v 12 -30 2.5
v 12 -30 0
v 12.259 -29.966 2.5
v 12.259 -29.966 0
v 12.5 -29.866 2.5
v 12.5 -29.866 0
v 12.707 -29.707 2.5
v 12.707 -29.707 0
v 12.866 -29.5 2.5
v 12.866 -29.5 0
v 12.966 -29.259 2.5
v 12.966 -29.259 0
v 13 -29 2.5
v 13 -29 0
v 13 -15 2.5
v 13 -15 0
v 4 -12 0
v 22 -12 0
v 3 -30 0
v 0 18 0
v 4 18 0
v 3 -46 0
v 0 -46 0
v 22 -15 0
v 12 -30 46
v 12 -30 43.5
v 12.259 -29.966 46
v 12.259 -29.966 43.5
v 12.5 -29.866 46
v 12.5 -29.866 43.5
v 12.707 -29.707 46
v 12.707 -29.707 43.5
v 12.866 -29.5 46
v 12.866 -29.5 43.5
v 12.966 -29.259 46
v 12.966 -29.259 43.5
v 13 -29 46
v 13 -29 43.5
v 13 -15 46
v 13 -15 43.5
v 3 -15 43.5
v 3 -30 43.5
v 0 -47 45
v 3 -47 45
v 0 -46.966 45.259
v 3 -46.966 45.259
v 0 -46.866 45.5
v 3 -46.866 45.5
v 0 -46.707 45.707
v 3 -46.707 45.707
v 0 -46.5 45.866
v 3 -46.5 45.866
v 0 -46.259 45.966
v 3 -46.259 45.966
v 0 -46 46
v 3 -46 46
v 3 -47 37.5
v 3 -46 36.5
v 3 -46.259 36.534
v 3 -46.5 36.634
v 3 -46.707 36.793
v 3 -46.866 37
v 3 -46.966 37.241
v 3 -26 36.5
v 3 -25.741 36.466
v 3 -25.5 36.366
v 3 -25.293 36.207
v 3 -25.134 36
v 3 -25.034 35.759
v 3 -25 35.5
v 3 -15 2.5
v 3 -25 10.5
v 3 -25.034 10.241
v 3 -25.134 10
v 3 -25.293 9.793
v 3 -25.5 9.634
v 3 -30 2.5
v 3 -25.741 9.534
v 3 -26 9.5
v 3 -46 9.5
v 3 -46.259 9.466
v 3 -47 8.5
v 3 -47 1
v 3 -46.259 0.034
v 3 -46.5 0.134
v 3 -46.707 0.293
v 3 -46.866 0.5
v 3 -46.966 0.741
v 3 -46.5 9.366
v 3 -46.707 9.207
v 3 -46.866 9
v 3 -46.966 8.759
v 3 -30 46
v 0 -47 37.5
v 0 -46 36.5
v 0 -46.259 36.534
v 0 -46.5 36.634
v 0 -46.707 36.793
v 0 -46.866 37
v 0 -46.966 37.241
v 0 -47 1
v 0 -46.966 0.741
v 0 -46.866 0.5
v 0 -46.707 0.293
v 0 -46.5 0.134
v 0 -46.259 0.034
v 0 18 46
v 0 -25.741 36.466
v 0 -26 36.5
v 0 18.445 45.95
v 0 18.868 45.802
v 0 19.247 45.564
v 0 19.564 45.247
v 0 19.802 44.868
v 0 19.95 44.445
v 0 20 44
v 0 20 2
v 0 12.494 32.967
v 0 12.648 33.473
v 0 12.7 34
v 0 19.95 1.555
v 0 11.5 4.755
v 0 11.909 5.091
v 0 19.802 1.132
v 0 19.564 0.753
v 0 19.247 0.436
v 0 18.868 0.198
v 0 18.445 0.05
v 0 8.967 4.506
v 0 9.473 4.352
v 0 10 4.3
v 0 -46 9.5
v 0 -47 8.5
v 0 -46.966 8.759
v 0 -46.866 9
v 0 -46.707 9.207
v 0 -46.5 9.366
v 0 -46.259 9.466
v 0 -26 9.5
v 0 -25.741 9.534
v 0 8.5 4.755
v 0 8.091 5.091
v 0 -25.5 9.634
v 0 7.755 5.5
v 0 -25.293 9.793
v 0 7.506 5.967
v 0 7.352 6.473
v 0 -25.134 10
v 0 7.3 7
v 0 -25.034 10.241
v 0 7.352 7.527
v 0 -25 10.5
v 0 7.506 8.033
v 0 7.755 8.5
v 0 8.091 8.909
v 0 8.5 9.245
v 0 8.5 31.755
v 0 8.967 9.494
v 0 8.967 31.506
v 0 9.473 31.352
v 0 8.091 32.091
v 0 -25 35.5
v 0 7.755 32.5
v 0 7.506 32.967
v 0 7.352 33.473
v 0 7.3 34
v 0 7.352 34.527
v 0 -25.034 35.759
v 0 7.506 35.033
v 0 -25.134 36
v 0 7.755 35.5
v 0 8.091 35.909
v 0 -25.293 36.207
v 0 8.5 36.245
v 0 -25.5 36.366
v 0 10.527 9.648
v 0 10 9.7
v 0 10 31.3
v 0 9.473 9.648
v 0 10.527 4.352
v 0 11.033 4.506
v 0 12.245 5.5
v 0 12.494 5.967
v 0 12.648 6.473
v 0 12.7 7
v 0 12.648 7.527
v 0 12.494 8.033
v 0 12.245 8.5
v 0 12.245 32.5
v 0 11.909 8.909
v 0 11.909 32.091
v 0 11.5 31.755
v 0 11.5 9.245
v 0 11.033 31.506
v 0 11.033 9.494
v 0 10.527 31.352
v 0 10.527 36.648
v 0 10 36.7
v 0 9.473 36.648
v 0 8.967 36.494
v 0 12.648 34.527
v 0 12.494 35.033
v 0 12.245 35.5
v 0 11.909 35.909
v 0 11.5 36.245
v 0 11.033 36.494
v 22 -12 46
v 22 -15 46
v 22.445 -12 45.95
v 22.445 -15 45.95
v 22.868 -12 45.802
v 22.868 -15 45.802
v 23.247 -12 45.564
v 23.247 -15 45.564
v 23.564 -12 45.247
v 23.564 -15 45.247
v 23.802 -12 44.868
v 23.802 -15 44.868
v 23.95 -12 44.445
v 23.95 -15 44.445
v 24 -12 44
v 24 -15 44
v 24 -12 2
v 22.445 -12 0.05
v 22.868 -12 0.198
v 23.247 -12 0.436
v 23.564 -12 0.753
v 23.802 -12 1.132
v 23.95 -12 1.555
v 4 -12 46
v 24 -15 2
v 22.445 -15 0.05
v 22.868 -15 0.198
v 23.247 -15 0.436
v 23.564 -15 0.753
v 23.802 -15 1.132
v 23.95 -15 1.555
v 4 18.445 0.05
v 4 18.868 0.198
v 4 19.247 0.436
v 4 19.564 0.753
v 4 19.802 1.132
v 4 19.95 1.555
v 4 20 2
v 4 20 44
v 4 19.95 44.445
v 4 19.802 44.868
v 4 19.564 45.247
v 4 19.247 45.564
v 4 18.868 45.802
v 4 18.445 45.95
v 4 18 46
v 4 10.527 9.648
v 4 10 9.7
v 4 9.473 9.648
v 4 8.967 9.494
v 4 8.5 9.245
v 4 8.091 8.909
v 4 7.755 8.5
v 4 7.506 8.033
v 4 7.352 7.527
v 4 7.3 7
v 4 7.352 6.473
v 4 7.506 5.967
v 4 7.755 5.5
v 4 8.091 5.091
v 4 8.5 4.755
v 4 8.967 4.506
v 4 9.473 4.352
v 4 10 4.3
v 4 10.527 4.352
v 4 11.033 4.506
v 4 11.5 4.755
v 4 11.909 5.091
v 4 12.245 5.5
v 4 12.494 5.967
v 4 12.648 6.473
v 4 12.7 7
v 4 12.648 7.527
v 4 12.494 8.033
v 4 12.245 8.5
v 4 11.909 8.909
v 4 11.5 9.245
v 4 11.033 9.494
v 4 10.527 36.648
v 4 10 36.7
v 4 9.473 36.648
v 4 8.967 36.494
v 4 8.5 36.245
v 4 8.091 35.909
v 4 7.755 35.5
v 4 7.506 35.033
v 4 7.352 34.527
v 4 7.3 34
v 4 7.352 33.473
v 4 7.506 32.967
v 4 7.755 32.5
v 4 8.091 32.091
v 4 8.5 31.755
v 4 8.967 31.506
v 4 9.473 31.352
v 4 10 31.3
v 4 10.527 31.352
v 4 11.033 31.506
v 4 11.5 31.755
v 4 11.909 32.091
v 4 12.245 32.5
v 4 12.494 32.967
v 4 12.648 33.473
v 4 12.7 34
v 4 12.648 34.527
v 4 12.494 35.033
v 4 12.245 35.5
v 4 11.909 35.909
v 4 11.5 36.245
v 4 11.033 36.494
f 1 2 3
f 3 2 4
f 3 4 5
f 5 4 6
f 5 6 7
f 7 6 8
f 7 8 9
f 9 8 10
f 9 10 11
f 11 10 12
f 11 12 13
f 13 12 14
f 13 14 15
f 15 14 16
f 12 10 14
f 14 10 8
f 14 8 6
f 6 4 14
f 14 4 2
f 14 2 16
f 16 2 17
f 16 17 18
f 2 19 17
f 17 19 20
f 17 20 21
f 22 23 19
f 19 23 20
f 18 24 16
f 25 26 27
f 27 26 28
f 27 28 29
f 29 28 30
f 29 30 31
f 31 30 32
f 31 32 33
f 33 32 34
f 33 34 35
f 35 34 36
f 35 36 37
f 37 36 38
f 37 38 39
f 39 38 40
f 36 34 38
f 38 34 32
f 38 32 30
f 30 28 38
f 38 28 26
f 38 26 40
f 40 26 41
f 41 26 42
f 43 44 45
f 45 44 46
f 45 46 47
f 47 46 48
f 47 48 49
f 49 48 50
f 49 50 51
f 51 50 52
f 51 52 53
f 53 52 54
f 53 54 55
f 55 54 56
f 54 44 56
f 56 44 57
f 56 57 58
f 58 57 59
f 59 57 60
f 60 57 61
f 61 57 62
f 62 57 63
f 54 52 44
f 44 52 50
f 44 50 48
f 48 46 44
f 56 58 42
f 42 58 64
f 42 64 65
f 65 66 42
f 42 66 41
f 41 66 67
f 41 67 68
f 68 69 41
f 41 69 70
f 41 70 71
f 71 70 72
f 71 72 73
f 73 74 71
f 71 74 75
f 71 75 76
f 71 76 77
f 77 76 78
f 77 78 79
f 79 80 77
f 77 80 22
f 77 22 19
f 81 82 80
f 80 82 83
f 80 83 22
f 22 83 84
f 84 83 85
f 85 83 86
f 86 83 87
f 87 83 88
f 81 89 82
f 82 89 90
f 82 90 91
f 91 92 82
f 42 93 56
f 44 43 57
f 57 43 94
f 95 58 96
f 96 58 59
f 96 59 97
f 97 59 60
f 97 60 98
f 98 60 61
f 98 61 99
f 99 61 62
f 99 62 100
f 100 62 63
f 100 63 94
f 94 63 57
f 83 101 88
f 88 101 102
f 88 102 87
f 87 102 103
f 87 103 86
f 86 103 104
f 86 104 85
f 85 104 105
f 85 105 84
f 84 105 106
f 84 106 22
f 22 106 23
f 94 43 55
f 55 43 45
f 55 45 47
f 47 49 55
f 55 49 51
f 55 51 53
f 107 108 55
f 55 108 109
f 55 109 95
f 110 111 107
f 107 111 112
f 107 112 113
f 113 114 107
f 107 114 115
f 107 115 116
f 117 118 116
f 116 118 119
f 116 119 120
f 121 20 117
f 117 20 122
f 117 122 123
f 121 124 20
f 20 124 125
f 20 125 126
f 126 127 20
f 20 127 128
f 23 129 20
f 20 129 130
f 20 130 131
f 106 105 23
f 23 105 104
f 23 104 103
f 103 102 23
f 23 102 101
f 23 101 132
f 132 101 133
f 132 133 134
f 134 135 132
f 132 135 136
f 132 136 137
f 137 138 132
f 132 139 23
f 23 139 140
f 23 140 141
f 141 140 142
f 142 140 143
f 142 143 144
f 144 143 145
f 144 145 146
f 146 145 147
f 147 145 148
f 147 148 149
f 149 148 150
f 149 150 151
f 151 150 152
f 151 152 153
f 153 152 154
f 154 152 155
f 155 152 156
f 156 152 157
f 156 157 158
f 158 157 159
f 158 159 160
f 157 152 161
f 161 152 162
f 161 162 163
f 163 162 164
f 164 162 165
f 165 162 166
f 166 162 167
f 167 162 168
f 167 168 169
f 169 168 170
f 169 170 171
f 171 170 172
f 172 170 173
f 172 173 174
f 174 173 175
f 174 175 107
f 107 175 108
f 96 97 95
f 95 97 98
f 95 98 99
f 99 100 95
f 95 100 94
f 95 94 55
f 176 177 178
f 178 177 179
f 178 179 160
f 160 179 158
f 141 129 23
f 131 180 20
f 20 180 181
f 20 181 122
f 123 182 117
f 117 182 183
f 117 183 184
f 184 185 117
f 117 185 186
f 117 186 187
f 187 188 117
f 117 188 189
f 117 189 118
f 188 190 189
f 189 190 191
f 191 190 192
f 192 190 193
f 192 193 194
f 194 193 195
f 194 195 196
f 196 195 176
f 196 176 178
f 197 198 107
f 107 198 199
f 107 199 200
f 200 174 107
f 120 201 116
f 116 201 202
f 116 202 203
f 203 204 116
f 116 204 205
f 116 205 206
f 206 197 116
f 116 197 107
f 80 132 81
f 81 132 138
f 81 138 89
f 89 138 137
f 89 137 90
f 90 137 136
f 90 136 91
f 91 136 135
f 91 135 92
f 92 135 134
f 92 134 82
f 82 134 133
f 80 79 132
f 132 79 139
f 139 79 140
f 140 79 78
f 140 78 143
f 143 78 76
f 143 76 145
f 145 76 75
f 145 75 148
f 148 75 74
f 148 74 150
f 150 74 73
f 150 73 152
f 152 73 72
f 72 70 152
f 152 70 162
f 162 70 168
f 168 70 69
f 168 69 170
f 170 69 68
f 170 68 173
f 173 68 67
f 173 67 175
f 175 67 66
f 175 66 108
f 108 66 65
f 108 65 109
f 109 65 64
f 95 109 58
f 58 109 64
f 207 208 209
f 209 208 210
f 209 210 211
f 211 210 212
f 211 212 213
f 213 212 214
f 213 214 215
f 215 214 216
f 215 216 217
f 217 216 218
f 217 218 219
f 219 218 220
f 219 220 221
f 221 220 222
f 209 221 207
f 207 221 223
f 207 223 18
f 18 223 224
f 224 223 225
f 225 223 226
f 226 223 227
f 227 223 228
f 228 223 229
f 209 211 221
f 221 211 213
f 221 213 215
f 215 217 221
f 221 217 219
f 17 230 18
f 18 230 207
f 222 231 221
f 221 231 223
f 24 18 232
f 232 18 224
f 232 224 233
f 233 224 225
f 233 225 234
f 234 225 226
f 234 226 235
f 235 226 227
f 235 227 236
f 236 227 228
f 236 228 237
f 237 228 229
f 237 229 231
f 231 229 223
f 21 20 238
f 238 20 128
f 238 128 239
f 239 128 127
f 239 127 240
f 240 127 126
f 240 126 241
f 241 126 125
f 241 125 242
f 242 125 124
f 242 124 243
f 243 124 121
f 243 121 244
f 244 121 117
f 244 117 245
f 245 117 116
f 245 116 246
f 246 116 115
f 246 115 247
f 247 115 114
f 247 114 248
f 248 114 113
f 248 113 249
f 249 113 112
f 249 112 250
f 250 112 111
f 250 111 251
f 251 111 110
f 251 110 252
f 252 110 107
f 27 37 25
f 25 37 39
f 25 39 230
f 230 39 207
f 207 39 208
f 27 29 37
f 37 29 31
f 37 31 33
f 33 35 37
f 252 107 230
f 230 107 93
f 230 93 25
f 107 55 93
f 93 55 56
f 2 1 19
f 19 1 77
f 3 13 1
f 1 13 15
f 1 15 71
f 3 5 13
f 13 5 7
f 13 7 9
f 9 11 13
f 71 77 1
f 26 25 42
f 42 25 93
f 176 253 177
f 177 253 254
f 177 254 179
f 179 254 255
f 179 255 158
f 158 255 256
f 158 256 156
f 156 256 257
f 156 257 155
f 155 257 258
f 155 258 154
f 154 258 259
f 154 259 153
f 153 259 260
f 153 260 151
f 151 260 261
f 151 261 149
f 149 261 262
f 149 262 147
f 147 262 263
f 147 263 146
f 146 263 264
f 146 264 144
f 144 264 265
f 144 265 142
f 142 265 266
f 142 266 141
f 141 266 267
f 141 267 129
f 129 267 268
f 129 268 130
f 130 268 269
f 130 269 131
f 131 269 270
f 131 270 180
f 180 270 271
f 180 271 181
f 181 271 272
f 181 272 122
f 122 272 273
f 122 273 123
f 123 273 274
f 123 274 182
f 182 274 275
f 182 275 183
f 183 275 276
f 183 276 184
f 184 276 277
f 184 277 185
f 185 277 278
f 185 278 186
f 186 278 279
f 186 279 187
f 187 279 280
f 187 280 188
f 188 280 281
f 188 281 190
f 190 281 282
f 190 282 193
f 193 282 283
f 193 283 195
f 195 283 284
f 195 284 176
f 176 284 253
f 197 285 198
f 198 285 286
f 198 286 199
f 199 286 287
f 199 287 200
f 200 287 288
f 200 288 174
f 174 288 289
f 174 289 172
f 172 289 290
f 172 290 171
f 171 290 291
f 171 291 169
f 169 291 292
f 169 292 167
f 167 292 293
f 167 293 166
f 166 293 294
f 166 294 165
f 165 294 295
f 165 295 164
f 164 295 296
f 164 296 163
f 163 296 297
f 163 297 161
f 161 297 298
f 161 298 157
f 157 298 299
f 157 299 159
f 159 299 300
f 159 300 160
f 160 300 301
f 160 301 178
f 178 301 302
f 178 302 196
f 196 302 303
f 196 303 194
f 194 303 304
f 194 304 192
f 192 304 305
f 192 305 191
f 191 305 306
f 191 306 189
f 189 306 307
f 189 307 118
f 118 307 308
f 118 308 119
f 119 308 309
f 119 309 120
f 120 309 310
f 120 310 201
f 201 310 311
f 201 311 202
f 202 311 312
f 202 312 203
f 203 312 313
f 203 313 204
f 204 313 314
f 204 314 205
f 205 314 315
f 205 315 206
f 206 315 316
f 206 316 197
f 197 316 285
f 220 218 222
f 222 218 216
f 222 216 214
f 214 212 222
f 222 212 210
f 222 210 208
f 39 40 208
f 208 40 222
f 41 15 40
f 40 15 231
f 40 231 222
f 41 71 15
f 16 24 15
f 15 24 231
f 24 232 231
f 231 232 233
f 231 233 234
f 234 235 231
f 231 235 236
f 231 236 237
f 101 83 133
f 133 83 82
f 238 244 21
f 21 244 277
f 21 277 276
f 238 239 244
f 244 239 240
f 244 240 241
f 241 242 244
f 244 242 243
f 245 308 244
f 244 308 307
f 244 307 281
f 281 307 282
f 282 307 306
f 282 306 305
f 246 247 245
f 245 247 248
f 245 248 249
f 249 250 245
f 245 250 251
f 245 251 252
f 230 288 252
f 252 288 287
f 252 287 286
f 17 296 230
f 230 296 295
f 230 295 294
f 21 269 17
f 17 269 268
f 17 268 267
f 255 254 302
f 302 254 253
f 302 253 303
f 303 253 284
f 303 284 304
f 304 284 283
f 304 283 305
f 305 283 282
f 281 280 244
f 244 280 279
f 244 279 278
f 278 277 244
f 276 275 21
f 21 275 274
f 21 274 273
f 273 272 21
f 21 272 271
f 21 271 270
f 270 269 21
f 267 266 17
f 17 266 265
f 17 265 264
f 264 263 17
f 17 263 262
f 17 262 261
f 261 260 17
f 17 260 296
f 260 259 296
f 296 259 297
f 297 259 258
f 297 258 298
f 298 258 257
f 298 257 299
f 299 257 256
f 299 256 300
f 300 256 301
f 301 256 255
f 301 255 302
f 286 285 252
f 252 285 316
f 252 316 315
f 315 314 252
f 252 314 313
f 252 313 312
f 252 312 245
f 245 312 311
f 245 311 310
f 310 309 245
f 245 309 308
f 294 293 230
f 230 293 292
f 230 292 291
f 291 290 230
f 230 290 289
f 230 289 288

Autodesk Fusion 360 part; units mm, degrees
sketch "Sketch1" plane through (0, 0, 0) normal (0, 0, 1) x (1, 0, 0)
  line L0 (4, 0) -> (4, 20)
  line L1 (4, 20) -> (0, 20)
  line L2 (0, 20) -> (0, 0)
  line L3 (0, 0) -> (4, 0)
  line L4 (4, 0) -> (4, -15)
  line L5 (4, -15) -> (0, -15)
  line L6 (0, -15) -> (0, 0)
  line L7 (0, -15) -> (3, -15)
  line L8 (3, -15) -> (3, -47)
  line L9 (3, -47) -> (0, -47)
  line L10 (0, -47) -> (0, -15)
  dimension "d1" = 20
  dimension "d2" = 4
  dimension "d3" = 15
  dimension "d4" = 32
  dimension "d5" = 3
extrude "Extrude1" add sketch "Sketch1" along normal blind 46
sketch "Sketch2" plane through (4, 0, 0) normal (1, 0, 0) x (0, 0, -1)
  line L0 (0, -15) -> (0, 20)
  line L1 (0, 20) -> (-46, 20)
  line L2 (-46, 20) -> (-46, -15)
  line L3 (-46, -15) -> (0, -15)
  line L4 (-46, 10) -> (0, 10) construction
  circle A0 centre (-34, 10) radius 2.7
  circle A1 centre (-7, 10) radius 2.7
  line L5 (-46, -12) -> (0, -12)
  line L6 (0, -47) -> (0, -15) construction
  line L7 (0, -15) -> (-46, -15) construction
  line L8 (-46, -15) -> (-46, -47) construction
  line L9 (-46, -47) -> (0, -47) construction
  line L10 (-23, 20) -> (-23, -47) construction
  line L11 (-36.5, -25) -> (-9.5, -25)
  line L12 (-9.5, -25) -> (-9.5, -47)
  line L13 (-9.5, -47) -> (-36.5, -47)
  line L14 (-36.5, -47) -> (-36.5, -25)
  dimension "d8" = 5.4
  dimension "d9" = 5.4
  dimension "d10" = 3
  dimension "d11" = 27
  dimension "d12" = 22
  dimension "d17" = 7
  dimension "d18" = 12
  dimension "d19" = 11.5
  dimension "d24" = 25
  dimension "d25" = 15
extrude "Extrude3" add sketch "Sketch2" along normal blind 20 contours L0 L2 L3 L5
extrude "Extrude2" cut sketch "Sketch2" against normal through all contours A0 | A1 | L11 L12 L13 L14
sketch "Sketch3" plane through (3, 0, 0) normal (1, 0, 0) x (0, 0, -1)
  line L0 (-9.5, -25) -> (-9.5, -47)
  line L1 (-9.5, -47) -> (0, -47)
  line L2 (0, -47) -> (0, -15)
  line L3 (0, -15) -> (-46, -15)
  line L4 (-46, -15) -> (-46, -47)
  line L5 (-46, -47) -> (-36.5, -47)
  line L6 (-36.5, -47) -> (-36.5, -25)
  line L7 (-36.5, -25) -> (-9.5, -25)
  line L8 (-46, -15) -> (-43.5, -15)
  line L9 (-43.5, -15) -> (-43.5, -30)
  line L10 (-43.5, -30) -> (-46, -30)
  line L11 (-46, -30) -> (-46, -15)
  line L12 (0, -15) -> (-2.5, -15)
  line L13 (-2.5, -15) -> (-2.5, -30)
  line L14 (-2.5, -30) -> (0, -30)
  line L15 (0, -30) -> (0, -15)
  dimension "d26" = 15
  dimension "d27" = 2.5
  dimension "d28" = 2.5
extrude "Extrude4" add sketch "Sketch3" along normal blind 10 contours L2 L3 L12 L13 L14 L15 | L3 L4 L8 L9 L10 L11
fillet "Fillet1" radius 2 4 edges at (2, 20, 46) (2, 20, 0) (24, -13.5, 0) (24, -13.5, 46)
fillet "Fillet2" radius 1 8 edges at (1.5, -25, 36.5) (1.5, -25, 9.5) (1.5, -47, 9.5) (1.5, -47, 0) (1.5, -47, 36.5) (1.5, -47, 46) (13, -30, 44.75) (13, -30, 1.25)
equation "d9 = d8"
equation "d28 = d27"
